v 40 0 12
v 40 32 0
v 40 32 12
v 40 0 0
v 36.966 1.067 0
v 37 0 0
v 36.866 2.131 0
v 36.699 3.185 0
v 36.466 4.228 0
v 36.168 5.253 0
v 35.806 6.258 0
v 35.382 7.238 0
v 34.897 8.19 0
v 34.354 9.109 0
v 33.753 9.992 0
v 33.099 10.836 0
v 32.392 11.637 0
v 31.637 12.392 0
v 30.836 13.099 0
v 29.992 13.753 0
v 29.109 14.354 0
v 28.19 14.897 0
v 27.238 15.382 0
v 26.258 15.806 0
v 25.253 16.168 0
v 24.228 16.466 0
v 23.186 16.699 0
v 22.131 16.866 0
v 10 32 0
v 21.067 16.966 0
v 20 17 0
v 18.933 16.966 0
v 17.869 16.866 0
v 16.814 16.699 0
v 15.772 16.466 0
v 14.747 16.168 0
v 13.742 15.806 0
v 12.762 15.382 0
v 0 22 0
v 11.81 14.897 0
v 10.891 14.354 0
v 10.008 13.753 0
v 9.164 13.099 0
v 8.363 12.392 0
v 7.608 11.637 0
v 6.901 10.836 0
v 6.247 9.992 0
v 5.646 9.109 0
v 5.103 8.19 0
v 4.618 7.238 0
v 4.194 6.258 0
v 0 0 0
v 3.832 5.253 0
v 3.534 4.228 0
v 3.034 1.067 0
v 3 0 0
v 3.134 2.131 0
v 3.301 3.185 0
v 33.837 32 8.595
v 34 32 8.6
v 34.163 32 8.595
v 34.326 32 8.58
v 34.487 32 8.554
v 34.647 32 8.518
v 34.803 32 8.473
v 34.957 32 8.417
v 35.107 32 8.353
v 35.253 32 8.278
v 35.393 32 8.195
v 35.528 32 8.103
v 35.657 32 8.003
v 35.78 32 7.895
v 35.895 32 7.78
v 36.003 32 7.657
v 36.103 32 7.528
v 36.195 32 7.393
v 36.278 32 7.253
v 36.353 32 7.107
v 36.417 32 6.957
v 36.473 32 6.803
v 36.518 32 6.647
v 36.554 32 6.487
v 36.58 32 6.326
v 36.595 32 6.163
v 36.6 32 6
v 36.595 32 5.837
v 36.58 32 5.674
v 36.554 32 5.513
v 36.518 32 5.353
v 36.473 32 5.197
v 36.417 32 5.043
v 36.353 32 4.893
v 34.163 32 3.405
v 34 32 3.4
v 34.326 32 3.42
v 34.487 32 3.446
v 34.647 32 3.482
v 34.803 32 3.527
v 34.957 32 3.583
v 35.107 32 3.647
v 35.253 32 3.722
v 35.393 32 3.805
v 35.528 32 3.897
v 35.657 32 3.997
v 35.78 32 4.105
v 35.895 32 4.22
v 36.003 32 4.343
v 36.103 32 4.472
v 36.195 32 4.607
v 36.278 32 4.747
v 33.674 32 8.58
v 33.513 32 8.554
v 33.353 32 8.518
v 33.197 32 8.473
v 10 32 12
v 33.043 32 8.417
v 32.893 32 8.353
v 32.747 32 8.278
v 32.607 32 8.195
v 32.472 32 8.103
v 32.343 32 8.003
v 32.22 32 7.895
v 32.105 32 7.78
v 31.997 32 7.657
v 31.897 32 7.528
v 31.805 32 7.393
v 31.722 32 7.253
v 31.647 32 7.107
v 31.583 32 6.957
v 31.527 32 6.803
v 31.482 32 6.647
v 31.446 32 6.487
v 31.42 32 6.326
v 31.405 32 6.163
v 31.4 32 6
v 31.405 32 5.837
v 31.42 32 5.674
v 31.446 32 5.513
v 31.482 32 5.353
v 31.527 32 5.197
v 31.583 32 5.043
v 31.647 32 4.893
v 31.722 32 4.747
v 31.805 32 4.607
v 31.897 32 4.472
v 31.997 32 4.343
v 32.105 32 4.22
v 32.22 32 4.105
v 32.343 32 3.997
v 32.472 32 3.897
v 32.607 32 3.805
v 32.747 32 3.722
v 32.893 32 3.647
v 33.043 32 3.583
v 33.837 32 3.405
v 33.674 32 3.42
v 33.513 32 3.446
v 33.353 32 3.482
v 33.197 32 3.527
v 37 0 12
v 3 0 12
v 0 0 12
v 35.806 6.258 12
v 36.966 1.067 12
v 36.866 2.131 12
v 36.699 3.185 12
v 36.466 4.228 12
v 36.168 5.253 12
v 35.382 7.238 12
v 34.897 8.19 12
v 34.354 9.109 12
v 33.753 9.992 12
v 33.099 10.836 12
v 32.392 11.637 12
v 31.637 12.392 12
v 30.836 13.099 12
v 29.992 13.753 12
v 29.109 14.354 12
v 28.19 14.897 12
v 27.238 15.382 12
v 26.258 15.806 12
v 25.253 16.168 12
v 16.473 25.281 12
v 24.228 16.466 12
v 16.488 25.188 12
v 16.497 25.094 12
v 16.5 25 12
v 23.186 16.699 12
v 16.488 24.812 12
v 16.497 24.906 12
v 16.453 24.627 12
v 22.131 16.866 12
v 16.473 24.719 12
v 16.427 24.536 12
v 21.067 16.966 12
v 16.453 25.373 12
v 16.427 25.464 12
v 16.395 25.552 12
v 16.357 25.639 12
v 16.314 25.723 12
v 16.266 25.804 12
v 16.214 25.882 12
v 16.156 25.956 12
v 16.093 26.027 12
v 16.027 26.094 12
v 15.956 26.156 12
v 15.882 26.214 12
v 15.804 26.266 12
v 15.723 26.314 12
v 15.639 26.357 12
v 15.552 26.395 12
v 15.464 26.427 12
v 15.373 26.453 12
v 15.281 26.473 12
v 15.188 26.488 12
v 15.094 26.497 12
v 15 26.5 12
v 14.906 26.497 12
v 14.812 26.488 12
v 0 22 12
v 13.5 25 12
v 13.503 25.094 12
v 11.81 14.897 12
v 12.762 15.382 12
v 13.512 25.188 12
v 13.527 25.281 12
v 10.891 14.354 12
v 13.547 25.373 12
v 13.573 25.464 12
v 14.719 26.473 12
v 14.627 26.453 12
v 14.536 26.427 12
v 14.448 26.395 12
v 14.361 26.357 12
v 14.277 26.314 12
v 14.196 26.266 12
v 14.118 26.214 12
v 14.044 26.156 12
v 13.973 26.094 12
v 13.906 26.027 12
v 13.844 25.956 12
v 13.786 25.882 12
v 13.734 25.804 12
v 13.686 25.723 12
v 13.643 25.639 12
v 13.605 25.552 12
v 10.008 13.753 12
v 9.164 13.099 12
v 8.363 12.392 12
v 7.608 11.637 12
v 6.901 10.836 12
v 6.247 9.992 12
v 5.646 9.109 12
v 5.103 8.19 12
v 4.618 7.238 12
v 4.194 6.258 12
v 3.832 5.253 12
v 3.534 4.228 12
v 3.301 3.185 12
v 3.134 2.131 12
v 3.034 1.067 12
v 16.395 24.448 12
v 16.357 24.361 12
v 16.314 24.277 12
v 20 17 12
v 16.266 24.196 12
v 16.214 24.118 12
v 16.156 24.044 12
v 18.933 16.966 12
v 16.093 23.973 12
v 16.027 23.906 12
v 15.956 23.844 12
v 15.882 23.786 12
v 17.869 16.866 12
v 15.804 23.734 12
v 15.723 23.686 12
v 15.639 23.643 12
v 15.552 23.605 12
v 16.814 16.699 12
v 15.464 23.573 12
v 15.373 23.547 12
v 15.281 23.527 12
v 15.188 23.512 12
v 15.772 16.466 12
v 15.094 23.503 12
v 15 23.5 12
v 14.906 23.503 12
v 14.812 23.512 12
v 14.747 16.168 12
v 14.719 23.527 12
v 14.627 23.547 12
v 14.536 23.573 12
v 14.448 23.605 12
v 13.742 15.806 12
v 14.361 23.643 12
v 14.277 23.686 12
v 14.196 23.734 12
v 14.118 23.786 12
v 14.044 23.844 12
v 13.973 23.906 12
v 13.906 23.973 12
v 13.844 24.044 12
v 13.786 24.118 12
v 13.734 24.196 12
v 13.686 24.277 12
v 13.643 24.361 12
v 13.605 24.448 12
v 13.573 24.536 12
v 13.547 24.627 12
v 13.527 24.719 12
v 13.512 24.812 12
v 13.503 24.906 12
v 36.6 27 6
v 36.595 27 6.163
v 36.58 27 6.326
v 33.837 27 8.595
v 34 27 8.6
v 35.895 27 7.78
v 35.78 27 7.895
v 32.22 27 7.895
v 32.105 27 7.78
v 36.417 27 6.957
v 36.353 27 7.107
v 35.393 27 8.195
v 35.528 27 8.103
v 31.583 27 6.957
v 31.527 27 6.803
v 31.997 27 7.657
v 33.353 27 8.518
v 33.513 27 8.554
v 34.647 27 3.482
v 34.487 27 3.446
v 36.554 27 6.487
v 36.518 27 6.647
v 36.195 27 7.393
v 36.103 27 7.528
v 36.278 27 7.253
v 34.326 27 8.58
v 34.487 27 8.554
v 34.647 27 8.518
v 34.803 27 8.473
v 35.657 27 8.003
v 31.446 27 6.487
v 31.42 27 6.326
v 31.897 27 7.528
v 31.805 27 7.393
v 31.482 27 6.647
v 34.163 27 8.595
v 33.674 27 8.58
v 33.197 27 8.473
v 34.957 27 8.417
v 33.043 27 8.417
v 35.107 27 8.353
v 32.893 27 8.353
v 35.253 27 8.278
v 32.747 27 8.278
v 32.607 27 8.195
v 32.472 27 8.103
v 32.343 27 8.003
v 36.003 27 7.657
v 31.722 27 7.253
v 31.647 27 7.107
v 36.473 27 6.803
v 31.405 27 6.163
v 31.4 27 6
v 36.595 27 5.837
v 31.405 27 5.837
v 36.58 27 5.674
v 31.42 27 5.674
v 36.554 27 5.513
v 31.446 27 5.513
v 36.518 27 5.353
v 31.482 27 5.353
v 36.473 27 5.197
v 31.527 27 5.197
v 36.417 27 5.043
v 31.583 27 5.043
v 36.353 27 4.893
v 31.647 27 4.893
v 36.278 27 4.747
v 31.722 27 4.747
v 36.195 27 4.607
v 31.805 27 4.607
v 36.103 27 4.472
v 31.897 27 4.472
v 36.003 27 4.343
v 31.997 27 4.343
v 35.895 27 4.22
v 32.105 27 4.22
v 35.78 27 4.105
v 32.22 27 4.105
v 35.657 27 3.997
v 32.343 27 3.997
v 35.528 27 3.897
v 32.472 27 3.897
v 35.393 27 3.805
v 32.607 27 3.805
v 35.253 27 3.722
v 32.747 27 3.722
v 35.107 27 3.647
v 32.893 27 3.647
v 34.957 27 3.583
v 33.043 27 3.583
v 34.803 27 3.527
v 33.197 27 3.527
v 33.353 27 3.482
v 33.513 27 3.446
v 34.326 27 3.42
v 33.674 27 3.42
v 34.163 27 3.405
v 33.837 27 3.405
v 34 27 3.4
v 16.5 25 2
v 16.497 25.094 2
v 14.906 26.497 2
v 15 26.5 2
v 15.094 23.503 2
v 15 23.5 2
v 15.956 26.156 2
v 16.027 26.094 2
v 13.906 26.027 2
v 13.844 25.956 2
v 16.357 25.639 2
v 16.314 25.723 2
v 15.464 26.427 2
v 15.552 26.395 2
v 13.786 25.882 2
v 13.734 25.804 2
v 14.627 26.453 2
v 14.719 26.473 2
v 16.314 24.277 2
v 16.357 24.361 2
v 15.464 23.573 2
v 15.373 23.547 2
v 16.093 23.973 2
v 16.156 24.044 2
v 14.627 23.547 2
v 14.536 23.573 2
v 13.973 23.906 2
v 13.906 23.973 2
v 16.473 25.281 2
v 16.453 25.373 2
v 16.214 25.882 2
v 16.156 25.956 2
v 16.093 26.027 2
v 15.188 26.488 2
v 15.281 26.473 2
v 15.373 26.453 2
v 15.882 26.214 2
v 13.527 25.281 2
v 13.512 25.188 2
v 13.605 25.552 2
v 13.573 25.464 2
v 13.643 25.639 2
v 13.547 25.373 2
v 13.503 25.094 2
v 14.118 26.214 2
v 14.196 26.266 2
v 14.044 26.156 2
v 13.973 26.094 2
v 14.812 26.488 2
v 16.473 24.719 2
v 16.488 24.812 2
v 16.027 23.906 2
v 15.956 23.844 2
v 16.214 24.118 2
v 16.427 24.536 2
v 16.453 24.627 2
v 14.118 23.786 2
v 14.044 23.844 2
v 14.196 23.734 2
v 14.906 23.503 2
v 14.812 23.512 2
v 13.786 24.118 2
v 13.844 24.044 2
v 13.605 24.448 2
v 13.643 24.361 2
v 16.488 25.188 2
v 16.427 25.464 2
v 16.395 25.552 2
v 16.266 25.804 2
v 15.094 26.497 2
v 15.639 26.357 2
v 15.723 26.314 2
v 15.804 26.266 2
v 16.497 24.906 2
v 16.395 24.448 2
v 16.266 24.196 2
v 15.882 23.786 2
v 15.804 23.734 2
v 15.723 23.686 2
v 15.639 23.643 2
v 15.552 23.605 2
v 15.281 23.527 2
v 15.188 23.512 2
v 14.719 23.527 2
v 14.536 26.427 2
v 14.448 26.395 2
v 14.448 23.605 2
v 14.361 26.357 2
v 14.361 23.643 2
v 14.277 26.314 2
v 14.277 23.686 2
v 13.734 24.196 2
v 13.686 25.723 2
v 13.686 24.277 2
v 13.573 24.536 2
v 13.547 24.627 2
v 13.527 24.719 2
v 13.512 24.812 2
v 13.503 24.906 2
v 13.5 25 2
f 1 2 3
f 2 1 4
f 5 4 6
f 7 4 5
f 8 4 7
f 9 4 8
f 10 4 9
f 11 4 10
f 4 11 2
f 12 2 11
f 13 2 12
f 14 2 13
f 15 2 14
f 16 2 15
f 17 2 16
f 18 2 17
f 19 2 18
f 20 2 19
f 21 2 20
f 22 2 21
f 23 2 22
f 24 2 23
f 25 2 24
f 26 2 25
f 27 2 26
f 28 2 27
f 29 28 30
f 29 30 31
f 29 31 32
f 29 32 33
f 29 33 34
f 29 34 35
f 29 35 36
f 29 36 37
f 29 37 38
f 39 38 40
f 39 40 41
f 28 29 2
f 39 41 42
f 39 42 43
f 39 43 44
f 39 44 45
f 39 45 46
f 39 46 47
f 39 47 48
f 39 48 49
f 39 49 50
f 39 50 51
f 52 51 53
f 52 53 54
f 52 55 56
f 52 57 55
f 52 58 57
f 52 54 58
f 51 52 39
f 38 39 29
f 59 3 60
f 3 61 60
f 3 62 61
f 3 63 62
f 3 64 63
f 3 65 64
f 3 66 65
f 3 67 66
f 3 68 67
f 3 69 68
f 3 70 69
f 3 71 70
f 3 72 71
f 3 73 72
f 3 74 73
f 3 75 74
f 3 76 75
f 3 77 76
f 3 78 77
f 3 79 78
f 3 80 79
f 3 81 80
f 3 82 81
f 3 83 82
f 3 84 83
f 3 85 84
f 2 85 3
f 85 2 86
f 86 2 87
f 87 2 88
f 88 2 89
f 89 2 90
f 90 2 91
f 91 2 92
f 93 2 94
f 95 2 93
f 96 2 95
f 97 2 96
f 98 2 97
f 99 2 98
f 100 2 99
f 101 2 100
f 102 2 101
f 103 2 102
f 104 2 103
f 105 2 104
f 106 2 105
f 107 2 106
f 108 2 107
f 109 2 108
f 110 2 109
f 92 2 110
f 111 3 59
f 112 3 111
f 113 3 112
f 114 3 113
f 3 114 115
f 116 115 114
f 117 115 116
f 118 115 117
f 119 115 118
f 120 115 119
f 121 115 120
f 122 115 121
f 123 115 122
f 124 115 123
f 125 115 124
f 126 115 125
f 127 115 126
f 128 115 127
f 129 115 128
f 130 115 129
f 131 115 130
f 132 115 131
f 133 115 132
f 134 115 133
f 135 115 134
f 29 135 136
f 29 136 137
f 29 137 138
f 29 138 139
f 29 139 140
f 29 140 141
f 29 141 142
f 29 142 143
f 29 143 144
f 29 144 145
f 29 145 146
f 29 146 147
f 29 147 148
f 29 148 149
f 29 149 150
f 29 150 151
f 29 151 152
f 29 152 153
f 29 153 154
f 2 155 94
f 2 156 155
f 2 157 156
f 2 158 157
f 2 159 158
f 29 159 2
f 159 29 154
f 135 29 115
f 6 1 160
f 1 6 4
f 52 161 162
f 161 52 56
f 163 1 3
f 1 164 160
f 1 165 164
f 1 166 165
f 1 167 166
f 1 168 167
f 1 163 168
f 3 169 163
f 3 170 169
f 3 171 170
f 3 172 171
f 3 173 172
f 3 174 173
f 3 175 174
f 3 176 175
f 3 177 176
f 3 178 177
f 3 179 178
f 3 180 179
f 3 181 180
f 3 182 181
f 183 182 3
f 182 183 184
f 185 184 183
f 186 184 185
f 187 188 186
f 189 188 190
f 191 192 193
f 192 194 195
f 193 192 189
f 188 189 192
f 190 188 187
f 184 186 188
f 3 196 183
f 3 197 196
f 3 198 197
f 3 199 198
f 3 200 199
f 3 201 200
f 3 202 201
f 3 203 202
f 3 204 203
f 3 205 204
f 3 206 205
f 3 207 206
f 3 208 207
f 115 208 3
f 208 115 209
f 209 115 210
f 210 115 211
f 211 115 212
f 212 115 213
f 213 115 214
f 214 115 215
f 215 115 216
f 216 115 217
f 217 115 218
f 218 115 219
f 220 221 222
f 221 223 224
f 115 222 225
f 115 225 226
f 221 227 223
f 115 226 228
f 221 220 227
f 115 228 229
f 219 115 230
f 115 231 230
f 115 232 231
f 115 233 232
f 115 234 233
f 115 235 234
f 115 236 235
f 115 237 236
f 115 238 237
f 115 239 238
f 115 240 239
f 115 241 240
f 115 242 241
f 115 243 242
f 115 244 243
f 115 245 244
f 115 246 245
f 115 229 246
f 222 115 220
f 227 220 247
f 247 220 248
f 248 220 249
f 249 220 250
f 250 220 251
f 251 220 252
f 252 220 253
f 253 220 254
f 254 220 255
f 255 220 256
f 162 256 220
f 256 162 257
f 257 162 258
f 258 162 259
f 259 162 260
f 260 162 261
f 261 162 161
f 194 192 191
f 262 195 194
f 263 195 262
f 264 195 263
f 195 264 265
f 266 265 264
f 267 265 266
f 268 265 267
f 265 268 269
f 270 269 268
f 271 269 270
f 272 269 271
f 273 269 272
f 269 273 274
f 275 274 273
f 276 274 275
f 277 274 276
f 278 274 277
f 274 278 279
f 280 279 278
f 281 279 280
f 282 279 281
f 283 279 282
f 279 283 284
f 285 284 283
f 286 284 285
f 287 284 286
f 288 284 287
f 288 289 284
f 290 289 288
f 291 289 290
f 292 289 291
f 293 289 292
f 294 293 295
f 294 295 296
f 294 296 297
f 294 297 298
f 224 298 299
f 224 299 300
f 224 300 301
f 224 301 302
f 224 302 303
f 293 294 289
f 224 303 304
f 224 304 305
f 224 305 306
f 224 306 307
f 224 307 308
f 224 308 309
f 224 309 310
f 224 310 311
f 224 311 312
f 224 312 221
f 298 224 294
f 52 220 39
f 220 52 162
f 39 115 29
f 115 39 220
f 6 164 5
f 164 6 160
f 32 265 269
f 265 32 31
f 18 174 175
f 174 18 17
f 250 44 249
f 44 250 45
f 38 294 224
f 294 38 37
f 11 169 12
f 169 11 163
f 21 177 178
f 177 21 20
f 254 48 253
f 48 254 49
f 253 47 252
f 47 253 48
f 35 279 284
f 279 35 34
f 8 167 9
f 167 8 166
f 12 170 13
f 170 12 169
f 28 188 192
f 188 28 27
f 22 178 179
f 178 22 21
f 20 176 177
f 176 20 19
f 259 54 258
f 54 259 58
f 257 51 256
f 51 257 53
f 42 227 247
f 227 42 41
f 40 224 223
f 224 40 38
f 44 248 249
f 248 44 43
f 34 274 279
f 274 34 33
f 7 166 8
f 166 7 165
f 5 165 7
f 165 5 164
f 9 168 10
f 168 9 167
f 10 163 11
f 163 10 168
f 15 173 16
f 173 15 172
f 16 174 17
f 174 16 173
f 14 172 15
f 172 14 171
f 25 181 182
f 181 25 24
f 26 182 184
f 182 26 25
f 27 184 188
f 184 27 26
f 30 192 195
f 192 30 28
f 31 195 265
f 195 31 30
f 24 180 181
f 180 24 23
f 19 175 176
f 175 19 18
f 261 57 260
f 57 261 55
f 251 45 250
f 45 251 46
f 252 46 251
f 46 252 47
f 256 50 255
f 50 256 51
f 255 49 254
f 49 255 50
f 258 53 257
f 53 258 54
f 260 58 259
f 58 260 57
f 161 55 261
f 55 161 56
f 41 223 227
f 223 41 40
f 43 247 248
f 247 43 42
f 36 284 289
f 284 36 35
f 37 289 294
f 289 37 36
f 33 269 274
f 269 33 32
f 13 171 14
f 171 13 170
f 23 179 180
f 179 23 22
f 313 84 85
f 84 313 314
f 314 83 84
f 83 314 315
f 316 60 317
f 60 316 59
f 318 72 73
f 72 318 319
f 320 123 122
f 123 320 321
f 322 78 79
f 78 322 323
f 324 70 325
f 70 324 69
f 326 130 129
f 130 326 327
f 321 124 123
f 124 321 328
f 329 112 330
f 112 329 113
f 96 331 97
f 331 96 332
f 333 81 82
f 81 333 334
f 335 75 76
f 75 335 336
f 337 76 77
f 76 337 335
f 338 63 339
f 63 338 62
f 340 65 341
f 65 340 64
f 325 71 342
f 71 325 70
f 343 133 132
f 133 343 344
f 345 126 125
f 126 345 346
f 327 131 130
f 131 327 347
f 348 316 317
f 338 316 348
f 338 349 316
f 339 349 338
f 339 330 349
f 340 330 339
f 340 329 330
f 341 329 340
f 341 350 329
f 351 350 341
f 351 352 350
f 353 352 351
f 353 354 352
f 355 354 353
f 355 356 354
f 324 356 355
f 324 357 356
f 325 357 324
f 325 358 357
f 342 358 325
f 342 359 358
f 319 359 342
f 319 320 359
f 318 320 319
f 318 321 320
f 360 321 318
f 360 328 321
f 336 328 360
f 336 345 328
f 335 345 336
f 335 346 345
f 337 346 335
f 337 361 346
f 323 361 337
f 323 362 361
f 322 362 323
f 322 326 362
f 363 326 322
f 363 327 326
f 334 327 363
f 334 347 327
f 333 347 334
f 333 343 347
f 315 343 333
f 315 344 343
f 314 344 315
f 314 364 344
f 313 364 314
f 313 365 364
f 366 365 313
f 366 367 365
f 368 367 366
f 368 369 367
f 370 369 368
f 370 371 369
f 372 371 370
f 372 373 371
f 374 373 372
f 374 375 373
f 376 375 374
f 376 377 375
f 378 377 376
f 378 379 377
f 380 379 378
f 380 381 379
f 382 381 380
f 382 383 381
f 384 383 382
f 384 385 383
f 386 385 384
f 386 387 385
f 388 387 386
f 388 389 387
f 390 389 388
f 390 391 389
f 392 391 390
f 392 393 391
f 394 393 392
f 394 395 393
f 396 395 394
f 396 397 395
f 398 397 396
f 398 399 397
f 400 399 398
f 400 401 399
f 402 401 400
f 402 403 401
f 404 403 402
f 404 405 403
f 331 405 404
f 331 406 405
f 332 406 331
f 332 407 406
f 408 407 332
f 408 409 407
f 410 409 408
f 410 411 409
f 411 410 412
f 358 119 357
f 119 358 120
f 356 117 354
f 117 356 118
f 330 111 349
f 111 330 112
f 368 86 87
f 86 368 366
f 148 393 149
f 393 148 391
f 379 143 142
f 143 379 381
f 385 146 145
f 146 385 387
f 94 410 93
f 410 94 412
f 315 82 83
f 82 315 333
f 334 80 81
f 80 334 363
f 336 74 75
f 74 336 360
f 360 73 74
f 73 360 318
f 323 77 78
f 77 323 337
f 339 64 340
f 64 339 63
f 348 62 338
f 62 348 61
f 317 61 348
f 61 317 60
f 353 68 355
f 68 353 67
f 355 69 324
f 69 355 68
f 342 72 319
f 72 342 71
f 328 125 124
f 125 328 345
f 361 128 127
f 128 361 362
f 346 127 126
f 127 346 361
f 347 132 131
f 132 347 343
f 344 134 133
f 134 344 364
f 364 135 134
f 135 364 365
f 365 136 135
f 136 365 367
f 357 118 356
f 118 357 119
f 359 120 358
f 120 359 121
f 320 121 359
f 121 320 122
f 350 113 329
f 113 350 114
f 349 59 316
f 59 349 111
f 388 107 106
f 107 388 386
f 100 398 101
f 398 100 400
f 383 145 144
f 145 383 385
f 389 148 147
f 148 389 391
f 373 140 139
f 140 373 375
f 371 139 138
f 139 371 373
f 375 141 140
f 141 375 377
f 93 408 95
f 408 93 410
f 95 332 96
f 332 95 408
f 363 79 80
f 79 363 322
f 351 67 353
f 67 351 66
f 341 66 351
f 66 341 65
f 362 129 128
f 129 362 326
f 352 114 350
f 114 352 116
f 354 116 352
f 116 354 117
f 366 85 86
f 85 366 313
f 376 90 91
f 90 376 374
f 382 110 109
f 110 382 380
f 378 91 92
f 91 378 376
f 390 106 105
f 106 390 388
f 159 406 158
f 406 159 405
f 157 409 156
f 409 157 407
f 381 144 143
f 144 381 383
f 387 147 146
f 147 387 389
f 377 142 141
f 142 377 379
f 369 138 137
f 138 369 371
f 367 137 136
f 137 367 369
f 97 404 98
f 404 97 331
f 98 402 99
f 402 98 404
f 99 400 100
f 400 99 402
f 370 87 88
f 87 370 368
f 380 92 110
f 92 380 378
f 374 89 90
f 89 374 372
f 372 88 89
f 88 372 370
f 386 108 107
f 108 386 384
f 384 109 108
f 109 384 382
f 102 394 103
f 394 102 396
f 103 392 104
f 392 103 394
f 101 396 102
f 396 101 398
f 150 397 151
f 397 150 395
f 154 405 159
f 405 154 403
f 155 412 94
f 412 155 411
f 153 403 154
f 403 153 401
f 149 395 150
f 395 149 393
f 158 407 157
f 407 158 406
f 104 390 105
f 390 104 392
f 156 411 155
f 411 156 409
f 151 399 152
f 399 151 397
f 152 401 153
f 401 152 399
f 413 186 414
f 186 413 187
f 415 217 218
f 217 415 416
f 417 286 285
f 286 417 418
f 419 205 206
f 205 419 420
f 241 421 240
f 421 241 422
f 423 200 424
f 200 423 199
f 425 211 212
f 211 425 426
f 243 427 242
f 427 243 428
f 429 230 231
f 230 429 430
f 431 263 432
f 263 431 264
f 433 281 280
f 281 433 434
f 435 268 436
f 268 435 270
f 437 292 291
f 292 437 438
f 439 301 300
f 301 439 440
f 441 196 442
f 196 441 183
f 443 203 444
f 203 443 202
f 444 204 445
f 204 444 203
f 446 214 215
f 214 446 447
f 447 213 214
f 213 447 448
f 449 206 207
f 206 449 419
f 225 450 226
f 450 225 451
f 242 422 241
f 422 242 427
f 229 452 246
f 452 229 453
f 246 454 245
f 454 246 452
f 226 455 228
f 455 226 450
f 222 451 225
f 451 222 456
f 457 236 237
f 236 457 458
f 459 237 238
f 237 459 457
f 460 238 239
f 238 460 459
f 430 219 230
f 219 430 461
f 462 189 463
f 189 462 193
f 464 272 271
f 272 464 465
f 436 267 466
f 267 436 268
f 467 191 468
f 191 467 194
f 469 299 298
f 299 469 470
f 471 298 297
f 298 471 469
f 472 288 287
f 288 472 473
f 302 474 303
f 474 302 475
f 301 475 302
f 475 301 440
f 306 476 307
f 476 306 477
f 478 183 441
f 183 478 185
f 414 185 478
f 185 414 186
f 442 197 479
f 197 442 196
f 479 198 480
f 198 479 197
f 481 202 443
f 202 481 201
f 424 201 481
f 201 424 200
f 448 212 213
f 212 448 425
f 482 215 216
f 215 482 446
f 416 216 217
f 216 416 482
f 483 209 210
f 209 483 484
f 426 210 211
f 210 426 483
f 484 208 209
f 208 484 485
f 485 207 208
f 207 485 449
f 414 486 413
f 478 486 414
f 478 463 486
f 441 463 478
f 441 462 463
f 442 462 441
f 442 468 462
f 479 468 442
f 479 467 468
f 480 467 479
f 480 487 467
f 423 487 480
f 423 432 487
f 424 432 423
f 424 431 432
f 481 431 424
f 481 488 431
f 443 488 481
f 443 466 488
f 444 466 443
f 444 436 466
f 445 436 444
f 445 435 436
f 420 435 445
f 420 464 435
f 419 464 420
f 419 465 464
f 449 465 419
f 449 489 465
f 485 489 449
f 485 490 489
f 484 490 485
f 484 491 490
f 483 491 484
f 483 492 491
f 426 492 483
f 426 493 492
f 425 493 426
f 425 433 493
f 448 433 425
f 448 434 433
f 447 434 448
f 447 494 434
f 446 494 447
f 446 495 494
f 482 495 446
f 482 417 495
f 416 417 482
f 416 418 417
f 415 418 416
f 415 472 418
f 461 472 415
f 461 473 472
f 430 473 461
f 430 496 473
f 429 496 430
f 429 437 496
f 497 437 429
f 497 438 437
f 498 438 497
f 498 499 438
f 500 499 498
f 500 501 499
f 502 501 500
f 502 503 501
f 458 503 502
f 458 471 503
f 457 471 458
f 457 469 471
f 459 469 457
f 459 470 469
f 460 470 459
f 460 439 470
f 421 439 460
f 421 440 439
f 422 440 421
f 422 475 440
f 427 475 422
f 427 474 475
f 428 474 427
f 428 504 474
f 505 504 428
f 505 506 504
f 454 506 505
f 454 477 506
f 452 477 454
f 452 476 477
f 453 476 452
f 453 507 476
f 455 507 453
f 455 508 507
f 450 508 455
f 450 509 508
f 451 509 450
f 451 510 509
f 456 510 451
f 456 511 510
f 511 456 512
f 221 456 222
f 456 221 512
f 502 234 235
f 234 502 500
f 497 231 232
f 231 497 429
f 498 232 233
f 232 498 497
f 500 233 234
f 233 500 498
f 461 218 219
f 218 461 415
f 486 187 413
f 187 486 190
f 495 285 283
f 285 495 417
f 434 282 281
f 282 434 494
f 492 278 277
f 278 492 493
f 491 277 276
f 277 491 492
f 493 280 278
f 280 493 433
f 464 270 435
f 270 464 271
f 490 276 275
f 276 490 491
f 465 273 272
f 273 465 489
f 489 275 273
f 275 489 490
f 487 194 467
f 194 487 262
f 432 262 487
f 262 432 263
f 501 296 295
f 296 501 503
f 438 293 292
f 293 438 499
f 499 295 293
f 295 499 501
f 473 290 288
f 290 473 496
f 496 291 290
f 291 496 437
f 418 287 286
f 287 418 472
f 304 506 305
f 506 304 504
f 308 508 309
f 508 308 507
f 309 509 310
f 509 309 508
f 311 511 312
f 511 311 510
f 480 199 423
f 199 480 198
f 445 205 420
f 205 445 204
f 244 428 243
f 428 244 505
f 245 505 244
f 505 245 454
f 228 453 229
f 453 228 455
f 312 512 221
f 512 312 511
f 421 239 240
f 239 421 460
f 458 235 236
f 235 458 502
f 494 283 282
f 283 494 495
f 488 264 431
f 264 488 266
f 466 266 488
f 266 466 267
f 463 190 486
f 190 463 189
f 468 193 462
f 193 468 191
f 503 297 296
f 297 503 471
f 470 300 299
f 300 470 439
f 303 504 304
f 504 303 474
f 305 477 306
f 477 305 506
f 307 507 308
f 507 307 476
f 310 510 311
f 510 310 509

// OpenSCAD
$fn=100;

// This is the block at the back of the barrel, just between the box and the grip. Can be seen on the last photos here: http://www.gbfans.com/equipment/reference/25/0/
// http://www.gbfans.com/images/equipment/reference/25/20.jpg

difference() {
    linear_extrude(12)
    polygon([
        [0,0],
        [40,0],
        [40,32],
        [10,32],
        [0,22]
    ]);
  
    translate([20,0,-0.1])
    cylinder(d=34,h=15.2);
    
    translate([34,35,6])
    rotate([90,0,0])
    cylinder(d=5.2,h=8);
    
    translate([15,25,2])
    cylinder(d=3,h=10.1);
}
